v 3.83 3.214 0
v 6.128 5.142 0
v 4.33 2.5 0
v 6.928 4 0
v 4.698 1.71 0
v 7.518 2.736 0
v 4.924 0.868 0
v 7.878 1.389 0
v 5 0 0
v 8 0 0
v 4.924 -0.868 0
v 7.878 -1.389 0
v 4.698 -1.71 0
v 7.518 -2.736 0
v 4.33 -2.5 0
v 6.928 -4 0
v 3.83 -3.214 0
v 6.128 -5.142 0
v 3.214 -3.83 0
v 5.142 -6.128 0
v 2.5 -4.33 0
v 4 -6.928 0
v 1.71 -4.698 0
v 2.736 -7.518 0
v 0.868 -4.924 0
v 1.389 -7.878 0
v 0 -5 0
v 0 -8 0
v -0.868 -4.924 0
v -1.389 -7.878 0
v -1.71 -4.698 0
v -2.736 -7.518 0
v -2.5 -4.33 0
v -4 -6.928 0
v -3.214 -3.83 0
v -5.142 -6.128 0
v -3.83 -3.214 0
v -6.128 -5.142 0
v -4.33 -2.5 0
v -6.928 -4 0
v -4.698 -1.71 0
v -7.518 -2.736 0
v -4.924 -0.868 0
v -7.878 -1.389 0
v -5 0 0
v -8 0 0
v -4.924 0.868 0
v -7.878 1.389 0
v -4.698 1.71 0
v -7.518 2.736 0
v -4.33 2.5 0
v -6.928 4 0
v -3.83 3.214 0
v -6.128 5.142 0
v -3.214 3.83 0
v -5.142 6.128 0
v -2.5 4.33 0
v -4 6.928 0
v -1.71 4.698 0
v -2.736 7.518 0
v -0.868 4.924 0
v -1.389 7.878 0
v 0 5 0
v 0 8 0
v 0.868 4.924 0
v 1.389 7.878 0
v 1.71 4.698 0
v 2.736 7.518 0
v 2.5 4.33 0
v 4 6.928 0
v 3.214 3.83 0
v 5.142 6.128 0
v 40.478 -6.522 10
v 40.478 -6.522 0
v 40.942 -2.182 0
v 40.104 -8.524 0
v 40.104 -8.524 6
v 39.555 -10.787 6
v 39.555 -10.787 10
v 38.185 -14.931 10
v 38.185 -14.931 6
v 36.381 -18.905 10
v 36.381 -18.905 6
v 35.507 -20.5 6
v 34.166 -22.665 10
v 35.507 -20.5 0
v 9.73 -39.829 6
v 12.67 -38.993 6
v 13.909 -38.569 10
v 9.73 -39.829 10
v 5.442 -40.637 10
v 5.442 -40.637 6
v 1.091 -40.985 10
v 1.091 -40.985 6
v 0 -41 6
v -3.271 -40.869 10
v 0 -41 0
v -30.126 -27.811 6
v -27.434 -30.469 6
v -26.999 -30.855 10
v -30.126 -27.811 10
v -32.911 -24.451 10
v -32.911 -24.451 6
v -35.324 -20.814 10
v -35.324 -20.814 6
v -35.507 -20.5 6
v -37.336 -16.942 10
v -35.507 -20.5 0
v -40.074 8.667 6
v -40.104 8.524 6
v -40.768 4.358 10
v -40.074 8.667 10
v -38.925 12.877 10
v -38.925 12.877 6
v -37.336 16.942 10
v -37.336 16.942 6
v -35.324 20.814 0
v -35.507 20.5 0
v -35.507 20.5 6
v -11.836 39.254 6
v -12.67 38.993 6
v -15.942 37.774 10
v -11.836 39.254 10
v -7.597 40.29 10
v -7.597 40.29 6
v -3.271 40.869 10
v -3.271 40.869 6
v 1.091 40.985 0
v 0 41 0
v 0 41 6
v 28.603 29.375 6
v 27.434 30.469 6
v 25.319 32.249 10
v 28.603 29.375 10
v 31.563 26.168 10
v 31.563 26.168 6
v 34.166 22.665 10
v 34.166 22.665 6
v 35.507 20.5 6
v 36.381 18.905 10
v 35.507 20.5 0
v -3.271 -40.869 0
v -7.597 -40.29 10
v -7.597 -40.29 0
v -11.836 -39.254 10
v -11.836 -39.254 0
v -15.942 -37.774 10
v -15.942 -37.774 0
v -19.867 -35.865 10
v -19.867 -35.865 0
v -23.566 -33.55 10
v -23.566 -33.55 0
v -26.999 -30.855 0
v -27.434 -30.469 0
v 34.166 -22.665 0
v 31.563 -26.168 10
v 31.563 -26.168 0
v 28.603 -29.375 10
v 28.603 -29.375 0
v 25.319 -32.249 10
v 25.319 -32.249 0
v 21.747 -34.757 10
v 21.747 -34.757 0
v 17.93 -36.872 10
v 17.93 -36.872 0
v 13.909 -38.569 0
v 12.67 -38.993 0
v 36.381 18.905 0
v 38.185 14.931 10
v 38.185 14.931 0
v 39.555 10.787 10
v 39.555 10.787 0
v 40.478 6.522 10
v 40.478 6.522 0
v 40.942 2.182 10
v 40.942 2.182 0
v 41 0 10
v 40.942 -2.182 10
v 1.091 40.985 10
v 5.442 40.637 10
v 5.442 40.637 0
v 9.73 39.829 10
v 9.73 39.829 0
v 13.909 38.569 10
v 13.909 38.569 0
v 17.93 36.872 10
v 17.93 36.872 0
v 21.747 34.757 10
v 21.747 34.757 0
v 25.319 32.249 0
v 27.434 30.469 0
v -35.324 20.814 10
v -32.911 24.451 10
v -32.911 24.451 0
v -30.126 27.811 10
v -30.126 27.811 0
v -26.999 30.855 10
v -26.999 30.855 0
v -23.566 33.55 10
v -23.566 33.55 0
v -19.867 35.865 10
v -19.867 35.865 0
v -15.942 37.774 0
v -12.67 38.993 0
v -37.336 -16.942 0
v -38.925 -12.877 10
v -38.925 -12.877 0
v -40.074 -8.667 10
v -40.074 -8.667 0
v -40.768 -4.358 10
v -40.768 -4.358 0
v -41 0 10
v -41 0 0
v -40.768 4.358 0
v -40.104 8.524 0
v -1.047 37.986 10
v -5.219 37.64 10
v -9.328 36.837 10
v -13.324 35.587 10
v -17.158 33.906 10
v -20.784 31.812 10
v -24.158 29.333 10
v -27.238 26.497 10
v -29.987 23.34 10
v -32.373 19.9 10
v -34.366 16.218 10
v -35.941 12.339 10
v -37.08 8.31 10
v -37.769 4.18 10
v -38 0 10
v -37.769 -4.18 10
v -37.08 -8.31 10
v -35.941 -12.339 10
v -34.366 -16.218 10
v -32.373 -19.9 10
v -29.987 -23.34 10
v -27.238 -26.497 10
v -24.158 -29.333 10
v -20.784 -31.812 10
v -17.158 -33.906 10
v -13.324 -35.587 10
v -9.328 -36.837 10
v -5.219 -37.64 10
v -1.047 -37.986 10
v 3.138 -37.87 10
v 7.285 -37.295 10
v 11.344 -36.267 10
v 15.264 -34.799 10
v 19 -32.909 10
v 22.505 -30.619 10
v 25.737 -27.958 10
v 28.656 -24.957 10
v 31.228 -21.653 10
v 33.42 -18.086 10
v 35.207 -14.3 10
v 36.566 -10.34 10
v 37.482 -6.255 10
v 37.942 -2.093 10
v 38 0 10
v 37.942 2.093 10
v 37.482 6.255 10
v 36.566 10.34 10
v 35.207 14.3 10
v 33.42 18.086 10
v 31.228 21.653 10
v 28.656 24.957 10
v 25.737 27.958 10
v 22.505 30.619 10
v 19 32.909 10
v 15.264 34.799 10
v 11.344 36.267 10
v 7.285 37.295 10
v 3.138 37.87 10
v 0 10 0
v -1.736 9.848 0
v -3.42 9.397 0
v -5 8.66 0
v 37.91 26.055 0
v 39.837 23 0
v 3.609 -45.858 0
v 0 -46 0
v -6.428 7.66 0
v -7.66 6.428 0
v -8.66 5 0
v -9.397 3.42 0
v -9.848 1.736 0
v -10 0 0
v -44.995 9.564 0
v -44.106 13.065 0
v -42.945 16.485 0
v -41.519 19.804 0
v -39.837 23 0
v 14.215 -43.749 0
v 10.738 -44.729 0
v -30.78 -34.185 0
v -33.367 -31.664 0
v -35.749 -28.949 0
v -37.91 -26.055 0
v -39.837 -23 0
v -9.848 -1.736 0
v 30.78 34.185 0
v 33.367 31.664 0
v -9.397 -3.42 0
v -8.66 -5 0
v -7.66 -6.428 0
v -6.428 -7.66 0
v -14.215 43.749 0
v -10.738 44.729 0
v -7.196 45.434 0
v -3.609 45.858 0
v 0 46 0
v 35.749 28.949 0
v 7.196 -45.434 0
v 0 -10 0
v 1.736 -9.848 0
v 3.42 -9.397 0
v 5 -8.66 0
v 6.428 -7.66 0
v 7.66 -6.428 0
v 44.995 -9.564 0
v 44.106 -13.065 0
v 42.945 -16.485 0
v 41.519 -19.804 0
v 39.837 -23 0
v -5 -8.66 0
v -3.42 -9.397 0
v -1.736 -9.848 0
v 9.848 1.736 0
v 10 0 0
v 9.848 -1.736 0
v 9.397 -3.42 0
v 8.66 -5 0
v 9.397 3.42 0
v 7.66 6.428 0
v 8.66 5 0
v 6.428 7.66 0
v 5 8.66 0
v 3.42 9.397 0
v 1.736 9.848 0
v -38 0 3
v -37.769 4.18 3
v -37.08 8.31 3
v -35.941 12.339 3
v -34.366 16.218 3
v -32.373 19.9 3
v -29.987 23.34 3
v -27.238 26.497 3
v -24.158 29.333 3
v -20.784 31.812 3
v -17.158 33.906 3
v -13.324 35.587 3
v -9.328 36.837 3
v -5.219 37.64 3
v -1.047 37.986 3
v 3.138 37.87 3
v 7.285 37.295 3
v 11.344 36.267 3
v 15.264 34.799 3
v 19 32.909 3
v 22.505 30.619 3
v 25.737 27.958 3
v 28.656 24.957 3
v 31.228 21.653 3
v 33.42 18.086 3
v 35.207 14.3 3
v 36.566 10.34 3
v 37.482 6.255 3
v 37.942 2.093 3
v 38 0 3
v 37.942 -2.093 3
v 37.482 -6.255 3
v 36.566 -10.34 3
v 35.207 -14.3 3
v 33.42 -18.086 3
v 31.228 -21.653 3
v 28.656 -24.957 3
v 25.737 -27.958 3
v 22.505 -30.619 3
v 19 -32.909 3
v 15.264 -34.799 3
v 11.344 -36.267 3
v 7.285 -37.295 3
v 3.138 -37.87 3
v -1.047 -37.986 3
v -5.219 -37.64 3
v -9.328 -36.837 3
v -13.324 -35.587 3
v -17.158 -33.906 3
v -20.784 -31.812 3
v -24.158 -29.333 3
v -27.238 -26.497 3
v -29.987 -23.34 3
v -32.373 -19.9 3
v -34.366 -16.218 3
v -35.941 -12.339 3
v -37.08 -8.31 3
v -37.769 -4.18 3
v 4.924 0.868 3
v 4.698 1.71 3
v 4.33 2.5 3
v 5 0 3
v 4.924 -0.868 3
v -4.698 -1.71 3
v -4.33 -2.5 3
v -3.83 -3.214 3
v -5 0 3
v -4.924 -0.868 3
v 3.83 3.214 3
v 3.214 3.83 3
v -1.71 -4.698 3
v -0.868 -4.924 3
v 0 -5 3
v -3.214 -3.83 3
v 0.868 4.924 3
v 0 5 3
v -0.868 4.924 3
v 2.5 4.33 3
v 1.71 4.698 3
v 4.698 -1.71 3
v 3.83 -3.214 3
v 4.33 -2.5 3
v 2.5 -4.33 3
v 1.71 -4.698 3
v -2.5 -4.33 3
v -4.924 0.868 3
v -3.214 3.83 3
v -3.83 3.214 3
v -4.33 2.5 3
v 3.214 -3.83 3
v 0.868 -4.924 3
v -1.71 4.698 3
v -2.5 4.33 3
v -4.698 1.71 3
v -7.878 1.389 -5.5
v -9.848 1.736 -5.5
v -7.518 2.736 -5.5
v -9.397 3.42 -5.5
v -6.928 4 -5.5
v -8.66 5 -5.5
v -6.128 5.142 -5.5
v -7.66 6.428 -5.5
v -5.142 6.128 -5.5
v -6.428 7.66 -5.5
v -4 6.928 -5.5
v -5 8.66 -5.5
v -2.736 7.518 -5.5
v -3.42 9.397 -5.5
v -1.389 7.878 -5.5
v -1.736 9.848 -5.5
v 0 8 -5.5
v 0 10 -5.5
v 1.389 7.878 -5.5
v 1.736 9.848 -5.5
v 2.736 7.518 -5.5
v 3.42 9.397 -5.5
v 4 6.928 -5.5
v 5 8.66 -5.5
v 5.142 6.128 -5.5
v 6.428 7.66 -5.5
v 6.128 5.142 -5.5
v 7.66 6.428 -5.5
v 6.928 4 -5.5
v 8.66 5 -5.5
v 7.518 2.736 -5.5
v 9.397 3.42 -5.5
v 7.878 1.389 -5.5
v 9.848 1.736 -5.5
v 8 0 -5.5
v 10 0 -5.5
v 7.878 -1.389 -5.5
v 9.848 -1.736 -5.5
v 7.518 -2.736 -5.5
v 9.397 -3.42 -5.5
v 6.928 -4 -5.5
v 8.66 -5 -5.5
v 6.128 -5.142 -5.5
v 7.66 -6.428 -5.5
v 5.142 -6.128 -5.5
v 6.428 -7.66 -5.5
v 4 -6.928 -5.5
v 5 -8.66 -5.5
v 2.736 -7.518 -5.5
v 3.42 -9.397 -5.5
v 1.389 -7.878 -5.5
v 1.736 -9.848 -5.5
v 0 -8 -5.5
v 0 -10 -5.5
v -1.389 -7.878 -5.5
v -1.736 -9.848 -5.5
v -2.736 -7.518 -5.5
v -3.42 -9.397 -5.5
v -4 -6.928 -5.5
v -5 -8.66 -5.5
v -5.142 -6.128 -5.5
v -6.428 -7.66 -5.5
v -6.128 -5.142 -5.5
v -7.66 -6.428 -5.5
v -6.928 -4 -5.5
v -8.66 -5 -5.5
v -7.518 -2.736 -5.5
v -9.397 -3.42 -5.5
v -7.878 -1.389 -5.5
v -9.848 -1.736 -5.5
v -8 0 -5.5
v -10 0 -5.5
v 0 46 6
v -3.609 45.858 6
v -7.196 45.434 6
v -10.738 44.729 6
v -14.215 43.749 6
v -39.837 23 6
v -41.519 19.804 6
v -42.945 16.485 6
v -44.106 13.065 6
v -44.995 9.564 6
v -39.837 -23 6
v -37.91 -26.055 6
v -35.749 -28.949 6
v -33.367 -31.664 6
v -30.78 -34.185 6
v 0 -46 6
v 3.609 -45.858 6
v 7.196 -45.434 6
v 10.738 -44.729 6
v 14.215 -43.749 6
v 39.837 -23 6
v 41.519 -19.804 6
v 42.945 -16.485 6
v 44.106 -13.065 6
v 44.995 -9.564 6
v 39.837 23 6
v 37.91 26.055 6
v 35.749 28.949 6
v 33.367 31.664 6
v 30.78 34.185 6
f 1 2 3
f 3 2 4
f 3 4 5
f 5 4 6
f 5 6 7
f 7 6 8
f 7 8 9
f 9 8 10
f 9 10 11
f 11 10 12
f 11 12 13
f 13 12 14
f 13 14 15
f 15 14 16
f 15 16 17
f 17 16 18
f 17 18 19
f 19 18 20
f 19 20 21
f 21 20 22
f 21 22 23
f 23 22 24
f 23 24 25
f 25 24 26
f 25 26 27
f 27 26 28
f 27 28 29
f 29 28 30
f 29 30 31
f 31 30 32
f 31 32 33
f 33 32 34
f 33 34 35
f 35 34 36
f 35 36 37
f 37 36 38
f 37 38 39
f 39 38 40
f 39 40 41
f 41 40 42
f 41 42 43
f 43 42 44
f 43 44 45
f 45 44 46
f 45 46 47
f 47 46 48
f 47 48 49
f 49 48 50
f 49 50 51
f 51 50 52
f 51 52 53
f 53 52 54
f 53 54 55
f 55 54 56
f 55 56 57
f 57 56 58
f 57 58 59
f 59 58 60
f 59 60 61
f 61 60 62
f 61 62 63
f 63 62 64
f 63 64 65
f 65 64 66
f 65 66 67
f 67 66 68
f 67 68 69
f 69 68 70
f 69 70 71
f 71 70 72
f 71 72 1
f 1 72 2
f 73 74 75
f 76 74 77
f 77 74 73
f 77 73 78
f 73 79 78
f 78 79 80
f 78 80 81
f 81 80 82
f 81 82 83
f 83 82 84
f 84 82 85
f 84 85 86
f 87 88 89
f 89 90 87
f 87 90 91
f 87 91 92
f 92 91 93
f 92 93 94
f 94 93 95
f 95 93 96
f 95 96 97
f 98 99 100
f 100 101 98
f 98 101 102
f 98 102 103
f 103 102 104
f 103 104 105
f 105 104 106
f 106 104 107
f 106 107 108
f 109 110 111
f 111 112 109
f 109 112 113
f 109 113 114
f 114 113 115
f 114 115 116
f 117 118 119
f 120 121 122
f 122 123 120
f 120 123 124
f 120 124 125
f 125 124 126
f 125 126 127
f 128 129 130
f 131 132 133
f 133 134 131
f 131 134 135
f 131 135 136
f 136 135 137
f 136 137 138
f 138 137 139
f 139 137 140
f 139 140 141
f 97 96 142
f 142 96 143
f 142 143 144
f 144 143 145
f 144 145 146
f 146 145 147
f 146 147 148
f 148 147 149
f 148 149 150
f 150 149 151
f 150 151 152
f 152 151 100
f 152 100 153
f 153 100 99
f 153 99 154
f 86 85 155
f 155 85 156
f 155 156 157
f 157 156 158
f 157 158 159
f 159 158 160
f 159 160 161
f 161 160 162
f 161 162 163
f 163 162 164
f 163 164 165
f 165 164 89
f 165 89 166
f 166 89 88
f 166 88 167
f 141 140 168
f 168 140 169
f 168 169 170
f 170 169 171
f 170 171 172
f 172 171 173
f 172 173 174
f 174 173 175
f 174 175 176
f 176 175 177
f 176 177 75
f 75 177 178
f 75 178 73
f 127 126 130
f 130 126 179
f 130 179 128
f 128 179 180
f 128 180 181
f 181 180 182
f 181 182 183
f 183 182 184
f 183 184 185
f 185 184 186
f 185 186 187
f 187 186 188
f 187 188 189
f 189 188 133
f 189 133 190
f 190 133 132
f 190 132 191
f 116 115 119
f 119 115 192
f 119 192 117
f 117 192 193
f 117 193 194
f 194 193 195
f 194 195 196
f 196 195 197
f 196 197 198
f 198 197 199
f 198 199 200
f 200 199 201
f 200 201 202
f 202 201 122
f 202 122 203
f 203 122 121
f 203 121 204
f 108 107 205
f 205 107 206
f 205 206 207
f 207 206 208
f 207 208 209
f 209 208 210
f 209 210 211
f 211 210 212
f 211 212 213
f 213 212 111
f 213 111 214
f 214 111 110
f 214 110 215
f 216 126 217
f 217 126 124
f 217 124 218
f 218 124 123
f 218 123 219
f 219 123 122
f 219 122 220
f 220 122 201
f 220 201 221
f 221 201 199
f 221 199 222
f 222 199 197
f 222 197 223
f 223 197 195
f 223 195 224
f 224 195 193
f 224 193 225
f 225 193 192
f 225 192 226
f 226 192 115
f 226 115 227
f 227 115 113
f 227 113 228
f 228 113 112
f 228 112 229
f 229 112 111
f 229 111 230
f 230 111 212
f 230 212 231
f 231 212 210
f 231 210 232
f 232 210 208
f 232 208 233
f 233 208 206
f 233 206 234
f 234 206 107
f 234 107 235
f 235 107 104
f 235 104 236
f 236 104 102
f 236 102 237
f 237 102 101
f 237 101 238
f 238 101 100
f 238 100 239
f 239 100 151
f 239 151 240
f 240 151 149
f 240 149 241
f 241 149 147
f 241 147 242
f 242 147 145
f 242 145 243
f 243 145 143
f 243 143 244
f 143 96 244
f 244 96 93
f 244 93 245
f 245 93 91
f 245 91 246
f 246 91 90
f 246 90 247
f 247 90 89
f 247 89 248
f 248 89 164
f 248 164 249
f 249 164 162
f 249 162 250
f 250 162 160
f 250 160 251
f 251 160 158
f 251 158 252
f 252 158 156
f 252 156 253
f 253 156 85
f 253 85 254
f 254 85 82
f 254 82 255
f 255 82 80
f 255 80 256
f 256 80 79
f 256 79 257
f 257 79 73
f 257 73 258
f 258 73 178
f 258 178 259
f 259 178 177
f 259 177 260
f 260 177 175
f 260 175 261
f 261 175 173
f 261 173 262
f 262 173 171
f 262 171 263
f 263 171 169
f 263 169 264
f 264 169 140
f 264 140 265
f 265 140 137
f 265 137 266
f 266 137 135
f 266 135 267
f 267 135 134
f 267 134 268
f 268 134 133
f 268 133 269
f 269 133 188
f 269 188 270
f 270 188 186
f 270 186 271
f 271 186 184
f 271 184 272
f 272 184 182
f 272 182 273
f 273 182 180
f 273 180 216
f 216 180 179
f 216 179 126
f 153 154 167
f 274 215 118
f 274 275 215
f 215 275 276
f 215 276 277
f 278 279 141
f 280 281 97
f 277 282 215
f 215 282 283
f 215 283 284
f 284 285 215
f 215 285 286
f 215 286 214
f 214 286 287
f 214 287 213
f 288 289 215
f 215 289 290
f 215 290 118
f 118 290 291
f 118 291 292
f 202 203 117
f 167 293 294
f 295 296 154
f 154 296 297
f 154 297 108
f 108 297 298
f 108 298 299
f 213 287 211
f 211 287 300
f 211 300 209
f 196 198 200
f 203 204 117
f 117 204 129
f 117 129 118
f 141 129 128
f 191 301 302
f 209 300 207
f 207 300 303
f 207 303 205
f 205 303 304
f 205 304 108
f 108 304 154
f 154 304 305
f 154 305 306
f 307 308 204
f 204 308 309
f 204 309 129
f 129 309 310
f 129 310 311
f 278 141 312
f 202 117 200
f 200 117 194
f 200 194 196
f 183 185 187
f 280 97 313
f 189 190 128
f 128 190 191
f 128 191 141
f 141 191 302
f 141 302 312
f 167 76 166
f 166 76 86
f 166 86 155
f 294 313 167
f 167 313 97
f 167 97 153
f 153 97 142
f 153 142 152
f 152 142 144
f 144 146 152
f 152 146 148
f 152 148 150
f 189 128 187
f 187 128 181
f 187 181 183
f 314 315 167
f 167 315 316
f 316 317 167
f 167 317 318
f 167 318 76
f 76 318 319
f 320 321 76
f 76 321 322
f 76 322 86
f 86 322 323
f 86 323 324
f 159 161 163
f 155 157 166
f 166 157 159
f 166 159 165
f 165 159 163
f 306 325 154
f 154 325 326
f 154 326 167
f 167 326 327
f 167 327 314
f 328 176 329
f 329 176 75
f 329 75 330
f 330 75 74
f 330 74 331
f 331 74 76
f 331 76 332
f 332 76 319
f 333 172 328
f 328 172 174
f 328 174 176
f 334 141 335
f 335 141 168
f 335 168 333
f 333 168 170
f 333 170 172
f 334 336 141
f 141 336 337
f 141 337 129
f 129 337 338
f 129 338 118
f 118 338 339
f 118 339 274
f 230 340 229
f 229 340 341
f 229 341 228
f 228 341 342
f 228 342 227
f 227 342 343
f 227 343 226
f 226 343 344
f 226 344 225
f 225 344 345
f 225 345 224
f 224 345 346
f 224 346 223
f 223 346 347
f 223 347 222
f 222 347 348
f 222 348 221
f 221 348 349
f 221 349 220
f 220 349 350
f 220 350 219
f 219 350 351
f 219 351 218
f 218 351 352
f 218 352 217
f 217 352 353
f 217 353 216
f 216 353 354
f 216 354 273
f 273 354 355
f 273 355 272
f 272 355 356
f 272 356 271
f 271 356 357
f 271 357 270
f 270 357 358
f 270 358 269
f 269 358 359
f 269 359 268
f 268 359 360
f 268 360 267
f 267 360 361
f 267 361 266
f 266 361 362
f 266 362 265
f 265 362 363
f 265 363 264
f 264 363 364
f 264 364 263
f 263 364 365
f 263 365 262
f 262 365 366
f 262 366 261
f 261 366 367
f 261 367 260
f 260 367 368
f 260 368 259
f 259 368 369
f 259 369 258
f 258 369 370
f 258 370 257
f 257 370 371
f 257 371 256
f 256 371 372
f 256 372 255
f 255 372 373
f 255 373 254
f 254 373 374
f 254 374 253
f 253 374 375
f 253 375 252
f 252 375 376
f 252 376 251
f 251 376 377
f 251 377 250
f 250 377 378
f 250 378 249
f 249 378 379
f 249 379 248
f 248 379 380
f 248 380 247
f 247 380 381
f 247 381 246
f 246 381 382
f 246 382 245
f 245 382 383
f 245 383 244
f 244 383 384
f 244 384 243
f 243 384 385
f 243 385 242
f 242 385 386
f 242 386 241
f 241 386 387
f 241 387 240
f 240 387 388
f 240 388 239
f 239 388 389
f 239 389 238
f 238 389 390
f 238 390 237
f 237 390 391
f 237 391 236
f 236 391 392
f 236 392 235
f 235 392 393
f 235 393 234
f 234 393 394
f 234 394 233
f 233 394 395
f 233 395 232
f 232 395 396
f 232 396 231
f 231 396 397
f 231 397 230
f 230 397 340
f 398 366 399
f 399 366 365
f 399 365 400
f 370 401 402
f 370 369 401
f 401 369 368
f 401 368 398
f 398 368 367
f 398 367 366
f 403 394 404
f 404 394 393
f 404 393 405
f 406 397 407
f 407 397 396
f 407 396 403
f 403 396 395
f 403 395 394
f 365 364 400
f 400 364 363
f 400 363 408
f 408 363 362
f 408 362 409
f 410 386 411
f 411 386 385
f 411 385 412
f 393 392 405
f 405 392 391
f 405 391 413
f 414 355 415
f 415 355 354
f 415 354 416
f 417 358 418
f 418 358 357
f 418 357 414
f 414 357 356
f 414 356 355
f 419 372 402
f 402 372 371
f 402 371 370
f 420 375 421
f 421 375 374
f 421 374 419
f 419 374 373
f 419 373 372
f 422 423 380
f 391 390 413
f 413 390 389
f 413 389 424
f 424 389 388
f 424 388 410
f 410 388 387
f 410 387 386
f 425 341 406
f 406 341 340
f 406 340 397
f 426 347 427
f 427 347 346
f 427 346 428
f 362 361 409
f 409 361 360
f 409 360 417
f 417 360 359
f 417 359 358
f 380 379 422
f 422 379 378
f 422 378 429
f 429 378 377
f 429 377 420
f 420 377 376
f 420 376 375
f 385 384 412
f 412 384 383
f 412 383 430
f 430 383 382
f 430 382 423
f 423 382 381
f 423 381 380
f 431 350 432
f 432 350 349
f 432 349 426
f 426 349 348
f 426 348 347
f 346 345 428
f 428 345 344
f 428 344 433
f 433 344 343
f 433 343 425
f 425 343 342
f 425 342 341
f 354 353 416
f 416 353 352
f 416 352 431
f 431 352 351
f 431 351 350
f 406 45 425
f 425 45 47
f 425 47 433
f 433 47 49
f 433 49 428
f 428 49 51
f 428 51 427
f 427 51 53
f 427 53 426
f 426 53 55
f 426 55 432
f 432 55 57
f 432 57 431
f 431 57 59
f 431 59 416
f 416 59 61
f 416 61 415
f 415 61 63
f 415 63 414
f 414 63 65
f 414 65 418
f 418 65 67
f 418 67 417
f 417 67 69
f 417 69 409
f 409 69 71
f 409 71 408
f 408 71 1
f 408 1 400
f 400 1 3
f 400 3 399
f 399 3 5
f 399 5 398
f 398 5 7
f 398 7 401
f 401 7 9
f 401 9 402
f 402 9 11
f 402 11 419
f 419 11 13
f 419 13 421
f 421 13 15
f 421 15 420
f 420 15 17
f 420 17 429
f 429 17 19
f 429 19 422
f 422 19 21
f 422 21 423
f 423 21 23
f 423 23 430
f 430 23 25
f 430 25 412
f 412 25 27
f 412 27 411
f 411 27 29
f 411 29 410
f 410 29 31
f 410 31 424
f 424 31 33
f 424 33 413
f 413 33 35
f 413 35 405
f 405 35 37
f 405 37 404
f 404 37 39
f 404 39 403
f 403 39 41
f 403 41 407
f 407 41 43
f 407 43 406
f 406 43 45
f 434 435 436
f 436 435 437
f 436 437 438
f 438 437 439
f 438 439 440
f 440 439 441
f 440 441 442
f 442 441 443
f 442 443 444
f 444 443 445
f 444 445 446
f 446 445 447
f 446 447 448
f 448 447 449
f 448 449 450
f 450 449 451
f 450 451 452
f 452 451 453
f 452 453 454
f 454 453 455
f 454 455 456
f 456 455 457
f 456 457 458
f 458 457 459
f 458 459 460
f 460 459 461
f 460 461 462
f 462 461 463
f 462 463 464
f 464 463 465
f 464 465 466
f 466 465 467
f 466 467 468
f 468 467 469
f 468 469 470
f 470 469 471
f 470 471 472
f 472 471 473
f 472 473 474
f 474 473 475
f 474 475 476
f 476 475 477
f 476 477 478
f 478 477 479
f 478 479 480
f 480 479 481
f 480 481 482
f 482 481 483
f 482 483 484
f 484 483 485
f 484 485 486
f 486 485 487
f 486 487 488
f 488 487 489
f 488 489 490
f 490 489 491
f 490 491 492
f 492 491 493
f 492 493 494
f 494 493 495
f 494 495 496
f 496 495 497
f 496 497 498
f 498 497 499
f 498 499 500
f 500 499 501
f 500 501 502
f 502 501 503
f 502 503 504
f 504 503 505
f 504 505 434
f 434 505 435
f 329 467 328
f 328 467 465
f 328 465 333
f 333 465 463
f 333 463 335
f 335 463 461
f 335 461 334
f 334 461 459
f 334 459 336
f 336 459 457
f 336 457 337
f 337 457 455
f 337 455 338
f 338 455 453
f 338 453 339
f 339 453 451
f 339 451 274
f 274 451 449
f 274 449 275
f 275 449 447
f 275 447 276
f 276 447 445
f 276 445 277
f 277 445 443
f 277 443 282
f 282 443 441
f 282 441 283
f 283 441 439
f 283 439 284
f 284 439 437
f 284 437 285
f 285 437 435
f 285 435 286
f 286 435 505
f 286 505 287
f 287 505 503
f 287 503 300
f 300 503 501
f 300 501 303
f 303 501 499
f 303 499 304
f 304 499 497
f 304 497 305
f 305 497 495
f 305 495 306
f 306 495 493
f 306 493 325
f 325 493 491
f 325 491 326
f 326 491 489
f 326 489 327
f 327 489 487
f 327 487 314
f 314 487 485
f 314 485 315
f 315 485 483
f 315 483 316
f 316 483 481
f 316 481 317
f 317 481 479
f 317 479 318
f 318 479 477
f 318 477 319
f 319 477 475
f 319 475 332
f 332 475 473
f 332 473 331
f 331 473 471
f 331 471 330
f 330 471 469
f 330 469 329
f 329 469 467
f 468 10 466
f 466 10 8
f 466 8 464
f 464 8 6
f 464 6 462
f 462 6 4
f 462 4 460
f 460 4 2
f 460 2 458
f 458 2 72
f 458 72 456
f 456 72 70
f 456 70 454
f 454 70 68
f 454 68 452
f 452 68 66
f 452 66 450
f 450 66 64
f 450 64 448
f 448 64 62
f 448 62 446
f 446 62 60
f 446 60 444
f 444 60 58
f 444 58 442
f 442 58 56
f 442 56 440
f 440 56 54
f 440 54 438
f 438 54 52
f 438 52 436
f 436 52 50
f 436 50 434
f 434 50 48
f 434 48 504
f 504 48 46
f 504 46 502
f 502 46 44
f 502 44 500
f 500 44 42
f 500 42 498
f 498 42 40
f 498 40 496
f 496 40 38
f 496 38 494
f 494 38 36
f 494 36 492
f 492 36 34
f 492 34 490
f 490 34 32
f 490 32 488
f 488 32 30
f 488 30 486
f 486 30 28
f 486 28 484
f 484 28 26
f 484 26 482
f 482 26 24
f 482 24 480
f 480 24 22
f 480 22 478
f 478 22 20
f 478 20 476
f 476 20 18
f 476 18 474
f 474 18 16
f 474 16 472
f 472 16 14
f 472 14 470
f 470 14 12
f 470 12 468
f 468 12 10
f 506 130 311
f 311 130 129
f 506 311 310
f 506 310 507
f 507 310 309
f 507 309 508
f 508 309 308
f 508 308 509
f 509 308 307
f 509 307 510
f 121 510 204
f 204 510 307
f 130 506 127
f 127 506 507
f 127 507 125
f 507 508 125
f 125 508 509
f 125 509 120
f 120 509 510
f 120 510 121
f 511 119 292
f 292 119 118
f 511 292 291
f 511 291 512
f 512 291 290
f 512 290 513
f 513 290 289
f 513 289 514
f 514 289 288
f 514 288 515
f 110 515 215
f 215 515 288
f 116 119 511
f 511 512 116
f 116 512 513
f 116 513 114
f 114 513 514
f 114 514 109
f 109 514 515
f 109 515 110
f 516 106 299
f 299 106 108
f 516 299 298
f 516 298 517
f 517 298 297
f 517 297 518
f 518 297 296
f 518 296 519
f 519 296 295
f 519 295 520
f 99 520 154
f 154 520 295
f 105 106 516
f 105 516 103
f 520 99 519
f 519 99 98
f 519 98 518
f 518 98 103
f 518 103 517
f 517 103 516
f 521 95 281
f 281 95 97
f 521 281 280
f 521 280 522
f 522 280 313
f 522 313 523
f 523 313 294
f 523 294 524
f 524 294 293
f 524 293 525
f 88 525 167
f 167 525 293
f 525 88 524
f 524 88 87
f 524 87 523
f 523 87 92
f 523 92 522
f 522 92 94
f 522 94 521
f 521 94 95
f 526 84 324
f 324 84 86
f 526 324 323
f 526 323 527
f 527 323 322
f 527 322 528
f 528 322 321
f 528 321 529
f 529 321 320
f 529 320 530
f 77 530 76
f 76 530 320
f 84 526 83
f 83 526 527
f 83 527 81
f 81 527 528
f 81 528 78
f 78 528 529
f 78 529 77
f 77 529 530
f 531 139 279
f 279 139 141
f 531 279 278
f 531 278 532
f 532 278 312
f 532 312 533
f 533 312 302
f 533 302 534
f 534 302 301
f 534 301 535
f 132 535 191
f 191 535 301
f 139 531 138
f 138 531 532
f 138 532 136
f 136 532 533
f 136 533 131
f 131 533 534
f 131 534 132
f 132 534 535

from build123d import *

# Parameters (mm, degrees)
SKETCH1_R               = 41
BOSS_EXTRUDE2_DEPTH     = 10
SHELL2_T                = -3
CUT_EXTRUDE1_DEPTH      = 59.838762733
CUT_EXTRUDE1_DEPTH_BACK = 59.838762733
SKETCH1_4_R             = 5
SKETCH3_R               = 10
SKETCH3_R_2             = 8
BOSS_EXTRUDE4_DEPTH     = 5.5
BOSS_EXTRUDE5_DEPTH     = 6


with BuildPart() as part:
    # Sketch1 → Boss-Extrude2 (new body)
    with BuildSketch(Plane.XY):
        Circle(SKETCH1_R)
    extrude(amount=BOSS_EXTRUDE2_DEPTH)

    # Shell2
    shell2_openings = [part.faces().sort_by_distance(p)[0] for p in [
        (0, 0, 10),
    ]]
    offset(amount=SHELL2_T, openings=shell2_openings, kind=Kind.INTERSECTION)

    # Sketch1<4> → Cut-Extrude1 (cut, two sides: drawn at the far end of the back side and taken through both)
    with BuildSketch(Plane.XY.offset(-CUT_EXTRUDE1_DEPTH_BACK)):
        Circle(SKETCH1_4_R)
    extrude(amount=CUT_EXTRUDE1_DEPTH + CUT_EXTRUDE1_DEPTH_BACK, mode=Mode.SUBTRACT)

    # Sketch3 → Boss-Extrude4 (add)
    with BuildSketch(Plane(origin=(0, 0, 0), x_dir=(-1, 0, 0), z_dir=(0, 0, -1))):
        Circle(SKETCH3_R)
        Circle(SKETCH3_R_2, mode=Mode.SUBTRACT)
    extrude(amount=BOSS_EXTRUDE4_DEPTH)

    # Sketch4 → Boss-Extrude5 (add)
    with BuildSketch(Plane(origin=(0, 0, 0), x_dir=(-1, 0, 0), z_dir=(0, 0, -1))):
        with BuildLine():
            Line((0, 46), (0, 41))
            ThreePointArc((0, 41), (6.413813067, 40.495221964), (12.669696769, 38.993317168))
            Line((12.669696769, 38.993317168), (14.214781741, 43.74859975))
            ThreePointArc((14.214781741, 43.74859975), (7.195985392, 45.433663667), (0, 46))
        make_face()
        with BuildLine():
            Line((39.837168574, 23), (35.507041555, 20.5))
            ThreePointArc((35.507041555, 20.5), (38.276797486, 14.693085931), (40.10405163, 8.524379324))
            Line((40.10405163, 8.524379324), (44.994789634, 9.563937778))
            ThreePointArc((44.994789634, 9.563937778), (42.944699619, 16.484925679), (39.837168574, 23))
        make_face()
        with BuildLine():
            Line((39.837168574, -23), (35.507041555, -20.5))
            ThreePointArc((35.507041555, -20.5), (31.86298442, -25.802136033), (27.434354861, -30.468937845))
            Line((27.434354861, -30.468937845), (30.780007893, -34.184661972))
            ThreePointArc((30.780007893, -34.184661972), (35.748714227, -28.948737988), (39.837168574, -23))
        make_face()
        with BuildLine():
            Line((0, -46), (0, -41))
            ThreePointArc((0, -41), (-6.413813067, -40.495221964), (-12.669696769, -38.993317168))
            Line((-12.669696769, -38.993317168), (-14.214781741, -43.74859975))
            ThreePointArc((-14.214781741, -43.74859975), (-7.195985392, -45.433663667), (0, -46))
        make_face()
        with BuildLine():
            Line((-39.837168574, -23), (-35.507041555, -20.5))
            ThreePointArc((-35.507041555, -20.5), (-38.276797486, -14.693085931), (-40.10405163, -8.524379324))
            Line((-40.10405163, -8.524379324), (-44.994789634, -9.563937778))
            ThreePointArc((-44.994789634, -9.563937778), (-42.944699619, -16.484925679), (-39.837168574, -23))
        make_face()
        with BuildLine():
            Line((-39.837168574, 23), (-35.507041555, 20.5))
            ThreePointArc((-35.507041555, 20.5), (-31.86298442, 25.802136033), (-27.434354861, 30.468937845))
            Line((-27.434354861, 30.468937845), (-30.780007893, 34.184661972))
            ThreePointArc((-30.780007893, 34.184661972), (-35.748714227, 28.948737988), (-39.837168574, 23))
        make_face()
    extrude(amount=-BOSS_EXTRUDE5_DEPTH)


solid = part.part
